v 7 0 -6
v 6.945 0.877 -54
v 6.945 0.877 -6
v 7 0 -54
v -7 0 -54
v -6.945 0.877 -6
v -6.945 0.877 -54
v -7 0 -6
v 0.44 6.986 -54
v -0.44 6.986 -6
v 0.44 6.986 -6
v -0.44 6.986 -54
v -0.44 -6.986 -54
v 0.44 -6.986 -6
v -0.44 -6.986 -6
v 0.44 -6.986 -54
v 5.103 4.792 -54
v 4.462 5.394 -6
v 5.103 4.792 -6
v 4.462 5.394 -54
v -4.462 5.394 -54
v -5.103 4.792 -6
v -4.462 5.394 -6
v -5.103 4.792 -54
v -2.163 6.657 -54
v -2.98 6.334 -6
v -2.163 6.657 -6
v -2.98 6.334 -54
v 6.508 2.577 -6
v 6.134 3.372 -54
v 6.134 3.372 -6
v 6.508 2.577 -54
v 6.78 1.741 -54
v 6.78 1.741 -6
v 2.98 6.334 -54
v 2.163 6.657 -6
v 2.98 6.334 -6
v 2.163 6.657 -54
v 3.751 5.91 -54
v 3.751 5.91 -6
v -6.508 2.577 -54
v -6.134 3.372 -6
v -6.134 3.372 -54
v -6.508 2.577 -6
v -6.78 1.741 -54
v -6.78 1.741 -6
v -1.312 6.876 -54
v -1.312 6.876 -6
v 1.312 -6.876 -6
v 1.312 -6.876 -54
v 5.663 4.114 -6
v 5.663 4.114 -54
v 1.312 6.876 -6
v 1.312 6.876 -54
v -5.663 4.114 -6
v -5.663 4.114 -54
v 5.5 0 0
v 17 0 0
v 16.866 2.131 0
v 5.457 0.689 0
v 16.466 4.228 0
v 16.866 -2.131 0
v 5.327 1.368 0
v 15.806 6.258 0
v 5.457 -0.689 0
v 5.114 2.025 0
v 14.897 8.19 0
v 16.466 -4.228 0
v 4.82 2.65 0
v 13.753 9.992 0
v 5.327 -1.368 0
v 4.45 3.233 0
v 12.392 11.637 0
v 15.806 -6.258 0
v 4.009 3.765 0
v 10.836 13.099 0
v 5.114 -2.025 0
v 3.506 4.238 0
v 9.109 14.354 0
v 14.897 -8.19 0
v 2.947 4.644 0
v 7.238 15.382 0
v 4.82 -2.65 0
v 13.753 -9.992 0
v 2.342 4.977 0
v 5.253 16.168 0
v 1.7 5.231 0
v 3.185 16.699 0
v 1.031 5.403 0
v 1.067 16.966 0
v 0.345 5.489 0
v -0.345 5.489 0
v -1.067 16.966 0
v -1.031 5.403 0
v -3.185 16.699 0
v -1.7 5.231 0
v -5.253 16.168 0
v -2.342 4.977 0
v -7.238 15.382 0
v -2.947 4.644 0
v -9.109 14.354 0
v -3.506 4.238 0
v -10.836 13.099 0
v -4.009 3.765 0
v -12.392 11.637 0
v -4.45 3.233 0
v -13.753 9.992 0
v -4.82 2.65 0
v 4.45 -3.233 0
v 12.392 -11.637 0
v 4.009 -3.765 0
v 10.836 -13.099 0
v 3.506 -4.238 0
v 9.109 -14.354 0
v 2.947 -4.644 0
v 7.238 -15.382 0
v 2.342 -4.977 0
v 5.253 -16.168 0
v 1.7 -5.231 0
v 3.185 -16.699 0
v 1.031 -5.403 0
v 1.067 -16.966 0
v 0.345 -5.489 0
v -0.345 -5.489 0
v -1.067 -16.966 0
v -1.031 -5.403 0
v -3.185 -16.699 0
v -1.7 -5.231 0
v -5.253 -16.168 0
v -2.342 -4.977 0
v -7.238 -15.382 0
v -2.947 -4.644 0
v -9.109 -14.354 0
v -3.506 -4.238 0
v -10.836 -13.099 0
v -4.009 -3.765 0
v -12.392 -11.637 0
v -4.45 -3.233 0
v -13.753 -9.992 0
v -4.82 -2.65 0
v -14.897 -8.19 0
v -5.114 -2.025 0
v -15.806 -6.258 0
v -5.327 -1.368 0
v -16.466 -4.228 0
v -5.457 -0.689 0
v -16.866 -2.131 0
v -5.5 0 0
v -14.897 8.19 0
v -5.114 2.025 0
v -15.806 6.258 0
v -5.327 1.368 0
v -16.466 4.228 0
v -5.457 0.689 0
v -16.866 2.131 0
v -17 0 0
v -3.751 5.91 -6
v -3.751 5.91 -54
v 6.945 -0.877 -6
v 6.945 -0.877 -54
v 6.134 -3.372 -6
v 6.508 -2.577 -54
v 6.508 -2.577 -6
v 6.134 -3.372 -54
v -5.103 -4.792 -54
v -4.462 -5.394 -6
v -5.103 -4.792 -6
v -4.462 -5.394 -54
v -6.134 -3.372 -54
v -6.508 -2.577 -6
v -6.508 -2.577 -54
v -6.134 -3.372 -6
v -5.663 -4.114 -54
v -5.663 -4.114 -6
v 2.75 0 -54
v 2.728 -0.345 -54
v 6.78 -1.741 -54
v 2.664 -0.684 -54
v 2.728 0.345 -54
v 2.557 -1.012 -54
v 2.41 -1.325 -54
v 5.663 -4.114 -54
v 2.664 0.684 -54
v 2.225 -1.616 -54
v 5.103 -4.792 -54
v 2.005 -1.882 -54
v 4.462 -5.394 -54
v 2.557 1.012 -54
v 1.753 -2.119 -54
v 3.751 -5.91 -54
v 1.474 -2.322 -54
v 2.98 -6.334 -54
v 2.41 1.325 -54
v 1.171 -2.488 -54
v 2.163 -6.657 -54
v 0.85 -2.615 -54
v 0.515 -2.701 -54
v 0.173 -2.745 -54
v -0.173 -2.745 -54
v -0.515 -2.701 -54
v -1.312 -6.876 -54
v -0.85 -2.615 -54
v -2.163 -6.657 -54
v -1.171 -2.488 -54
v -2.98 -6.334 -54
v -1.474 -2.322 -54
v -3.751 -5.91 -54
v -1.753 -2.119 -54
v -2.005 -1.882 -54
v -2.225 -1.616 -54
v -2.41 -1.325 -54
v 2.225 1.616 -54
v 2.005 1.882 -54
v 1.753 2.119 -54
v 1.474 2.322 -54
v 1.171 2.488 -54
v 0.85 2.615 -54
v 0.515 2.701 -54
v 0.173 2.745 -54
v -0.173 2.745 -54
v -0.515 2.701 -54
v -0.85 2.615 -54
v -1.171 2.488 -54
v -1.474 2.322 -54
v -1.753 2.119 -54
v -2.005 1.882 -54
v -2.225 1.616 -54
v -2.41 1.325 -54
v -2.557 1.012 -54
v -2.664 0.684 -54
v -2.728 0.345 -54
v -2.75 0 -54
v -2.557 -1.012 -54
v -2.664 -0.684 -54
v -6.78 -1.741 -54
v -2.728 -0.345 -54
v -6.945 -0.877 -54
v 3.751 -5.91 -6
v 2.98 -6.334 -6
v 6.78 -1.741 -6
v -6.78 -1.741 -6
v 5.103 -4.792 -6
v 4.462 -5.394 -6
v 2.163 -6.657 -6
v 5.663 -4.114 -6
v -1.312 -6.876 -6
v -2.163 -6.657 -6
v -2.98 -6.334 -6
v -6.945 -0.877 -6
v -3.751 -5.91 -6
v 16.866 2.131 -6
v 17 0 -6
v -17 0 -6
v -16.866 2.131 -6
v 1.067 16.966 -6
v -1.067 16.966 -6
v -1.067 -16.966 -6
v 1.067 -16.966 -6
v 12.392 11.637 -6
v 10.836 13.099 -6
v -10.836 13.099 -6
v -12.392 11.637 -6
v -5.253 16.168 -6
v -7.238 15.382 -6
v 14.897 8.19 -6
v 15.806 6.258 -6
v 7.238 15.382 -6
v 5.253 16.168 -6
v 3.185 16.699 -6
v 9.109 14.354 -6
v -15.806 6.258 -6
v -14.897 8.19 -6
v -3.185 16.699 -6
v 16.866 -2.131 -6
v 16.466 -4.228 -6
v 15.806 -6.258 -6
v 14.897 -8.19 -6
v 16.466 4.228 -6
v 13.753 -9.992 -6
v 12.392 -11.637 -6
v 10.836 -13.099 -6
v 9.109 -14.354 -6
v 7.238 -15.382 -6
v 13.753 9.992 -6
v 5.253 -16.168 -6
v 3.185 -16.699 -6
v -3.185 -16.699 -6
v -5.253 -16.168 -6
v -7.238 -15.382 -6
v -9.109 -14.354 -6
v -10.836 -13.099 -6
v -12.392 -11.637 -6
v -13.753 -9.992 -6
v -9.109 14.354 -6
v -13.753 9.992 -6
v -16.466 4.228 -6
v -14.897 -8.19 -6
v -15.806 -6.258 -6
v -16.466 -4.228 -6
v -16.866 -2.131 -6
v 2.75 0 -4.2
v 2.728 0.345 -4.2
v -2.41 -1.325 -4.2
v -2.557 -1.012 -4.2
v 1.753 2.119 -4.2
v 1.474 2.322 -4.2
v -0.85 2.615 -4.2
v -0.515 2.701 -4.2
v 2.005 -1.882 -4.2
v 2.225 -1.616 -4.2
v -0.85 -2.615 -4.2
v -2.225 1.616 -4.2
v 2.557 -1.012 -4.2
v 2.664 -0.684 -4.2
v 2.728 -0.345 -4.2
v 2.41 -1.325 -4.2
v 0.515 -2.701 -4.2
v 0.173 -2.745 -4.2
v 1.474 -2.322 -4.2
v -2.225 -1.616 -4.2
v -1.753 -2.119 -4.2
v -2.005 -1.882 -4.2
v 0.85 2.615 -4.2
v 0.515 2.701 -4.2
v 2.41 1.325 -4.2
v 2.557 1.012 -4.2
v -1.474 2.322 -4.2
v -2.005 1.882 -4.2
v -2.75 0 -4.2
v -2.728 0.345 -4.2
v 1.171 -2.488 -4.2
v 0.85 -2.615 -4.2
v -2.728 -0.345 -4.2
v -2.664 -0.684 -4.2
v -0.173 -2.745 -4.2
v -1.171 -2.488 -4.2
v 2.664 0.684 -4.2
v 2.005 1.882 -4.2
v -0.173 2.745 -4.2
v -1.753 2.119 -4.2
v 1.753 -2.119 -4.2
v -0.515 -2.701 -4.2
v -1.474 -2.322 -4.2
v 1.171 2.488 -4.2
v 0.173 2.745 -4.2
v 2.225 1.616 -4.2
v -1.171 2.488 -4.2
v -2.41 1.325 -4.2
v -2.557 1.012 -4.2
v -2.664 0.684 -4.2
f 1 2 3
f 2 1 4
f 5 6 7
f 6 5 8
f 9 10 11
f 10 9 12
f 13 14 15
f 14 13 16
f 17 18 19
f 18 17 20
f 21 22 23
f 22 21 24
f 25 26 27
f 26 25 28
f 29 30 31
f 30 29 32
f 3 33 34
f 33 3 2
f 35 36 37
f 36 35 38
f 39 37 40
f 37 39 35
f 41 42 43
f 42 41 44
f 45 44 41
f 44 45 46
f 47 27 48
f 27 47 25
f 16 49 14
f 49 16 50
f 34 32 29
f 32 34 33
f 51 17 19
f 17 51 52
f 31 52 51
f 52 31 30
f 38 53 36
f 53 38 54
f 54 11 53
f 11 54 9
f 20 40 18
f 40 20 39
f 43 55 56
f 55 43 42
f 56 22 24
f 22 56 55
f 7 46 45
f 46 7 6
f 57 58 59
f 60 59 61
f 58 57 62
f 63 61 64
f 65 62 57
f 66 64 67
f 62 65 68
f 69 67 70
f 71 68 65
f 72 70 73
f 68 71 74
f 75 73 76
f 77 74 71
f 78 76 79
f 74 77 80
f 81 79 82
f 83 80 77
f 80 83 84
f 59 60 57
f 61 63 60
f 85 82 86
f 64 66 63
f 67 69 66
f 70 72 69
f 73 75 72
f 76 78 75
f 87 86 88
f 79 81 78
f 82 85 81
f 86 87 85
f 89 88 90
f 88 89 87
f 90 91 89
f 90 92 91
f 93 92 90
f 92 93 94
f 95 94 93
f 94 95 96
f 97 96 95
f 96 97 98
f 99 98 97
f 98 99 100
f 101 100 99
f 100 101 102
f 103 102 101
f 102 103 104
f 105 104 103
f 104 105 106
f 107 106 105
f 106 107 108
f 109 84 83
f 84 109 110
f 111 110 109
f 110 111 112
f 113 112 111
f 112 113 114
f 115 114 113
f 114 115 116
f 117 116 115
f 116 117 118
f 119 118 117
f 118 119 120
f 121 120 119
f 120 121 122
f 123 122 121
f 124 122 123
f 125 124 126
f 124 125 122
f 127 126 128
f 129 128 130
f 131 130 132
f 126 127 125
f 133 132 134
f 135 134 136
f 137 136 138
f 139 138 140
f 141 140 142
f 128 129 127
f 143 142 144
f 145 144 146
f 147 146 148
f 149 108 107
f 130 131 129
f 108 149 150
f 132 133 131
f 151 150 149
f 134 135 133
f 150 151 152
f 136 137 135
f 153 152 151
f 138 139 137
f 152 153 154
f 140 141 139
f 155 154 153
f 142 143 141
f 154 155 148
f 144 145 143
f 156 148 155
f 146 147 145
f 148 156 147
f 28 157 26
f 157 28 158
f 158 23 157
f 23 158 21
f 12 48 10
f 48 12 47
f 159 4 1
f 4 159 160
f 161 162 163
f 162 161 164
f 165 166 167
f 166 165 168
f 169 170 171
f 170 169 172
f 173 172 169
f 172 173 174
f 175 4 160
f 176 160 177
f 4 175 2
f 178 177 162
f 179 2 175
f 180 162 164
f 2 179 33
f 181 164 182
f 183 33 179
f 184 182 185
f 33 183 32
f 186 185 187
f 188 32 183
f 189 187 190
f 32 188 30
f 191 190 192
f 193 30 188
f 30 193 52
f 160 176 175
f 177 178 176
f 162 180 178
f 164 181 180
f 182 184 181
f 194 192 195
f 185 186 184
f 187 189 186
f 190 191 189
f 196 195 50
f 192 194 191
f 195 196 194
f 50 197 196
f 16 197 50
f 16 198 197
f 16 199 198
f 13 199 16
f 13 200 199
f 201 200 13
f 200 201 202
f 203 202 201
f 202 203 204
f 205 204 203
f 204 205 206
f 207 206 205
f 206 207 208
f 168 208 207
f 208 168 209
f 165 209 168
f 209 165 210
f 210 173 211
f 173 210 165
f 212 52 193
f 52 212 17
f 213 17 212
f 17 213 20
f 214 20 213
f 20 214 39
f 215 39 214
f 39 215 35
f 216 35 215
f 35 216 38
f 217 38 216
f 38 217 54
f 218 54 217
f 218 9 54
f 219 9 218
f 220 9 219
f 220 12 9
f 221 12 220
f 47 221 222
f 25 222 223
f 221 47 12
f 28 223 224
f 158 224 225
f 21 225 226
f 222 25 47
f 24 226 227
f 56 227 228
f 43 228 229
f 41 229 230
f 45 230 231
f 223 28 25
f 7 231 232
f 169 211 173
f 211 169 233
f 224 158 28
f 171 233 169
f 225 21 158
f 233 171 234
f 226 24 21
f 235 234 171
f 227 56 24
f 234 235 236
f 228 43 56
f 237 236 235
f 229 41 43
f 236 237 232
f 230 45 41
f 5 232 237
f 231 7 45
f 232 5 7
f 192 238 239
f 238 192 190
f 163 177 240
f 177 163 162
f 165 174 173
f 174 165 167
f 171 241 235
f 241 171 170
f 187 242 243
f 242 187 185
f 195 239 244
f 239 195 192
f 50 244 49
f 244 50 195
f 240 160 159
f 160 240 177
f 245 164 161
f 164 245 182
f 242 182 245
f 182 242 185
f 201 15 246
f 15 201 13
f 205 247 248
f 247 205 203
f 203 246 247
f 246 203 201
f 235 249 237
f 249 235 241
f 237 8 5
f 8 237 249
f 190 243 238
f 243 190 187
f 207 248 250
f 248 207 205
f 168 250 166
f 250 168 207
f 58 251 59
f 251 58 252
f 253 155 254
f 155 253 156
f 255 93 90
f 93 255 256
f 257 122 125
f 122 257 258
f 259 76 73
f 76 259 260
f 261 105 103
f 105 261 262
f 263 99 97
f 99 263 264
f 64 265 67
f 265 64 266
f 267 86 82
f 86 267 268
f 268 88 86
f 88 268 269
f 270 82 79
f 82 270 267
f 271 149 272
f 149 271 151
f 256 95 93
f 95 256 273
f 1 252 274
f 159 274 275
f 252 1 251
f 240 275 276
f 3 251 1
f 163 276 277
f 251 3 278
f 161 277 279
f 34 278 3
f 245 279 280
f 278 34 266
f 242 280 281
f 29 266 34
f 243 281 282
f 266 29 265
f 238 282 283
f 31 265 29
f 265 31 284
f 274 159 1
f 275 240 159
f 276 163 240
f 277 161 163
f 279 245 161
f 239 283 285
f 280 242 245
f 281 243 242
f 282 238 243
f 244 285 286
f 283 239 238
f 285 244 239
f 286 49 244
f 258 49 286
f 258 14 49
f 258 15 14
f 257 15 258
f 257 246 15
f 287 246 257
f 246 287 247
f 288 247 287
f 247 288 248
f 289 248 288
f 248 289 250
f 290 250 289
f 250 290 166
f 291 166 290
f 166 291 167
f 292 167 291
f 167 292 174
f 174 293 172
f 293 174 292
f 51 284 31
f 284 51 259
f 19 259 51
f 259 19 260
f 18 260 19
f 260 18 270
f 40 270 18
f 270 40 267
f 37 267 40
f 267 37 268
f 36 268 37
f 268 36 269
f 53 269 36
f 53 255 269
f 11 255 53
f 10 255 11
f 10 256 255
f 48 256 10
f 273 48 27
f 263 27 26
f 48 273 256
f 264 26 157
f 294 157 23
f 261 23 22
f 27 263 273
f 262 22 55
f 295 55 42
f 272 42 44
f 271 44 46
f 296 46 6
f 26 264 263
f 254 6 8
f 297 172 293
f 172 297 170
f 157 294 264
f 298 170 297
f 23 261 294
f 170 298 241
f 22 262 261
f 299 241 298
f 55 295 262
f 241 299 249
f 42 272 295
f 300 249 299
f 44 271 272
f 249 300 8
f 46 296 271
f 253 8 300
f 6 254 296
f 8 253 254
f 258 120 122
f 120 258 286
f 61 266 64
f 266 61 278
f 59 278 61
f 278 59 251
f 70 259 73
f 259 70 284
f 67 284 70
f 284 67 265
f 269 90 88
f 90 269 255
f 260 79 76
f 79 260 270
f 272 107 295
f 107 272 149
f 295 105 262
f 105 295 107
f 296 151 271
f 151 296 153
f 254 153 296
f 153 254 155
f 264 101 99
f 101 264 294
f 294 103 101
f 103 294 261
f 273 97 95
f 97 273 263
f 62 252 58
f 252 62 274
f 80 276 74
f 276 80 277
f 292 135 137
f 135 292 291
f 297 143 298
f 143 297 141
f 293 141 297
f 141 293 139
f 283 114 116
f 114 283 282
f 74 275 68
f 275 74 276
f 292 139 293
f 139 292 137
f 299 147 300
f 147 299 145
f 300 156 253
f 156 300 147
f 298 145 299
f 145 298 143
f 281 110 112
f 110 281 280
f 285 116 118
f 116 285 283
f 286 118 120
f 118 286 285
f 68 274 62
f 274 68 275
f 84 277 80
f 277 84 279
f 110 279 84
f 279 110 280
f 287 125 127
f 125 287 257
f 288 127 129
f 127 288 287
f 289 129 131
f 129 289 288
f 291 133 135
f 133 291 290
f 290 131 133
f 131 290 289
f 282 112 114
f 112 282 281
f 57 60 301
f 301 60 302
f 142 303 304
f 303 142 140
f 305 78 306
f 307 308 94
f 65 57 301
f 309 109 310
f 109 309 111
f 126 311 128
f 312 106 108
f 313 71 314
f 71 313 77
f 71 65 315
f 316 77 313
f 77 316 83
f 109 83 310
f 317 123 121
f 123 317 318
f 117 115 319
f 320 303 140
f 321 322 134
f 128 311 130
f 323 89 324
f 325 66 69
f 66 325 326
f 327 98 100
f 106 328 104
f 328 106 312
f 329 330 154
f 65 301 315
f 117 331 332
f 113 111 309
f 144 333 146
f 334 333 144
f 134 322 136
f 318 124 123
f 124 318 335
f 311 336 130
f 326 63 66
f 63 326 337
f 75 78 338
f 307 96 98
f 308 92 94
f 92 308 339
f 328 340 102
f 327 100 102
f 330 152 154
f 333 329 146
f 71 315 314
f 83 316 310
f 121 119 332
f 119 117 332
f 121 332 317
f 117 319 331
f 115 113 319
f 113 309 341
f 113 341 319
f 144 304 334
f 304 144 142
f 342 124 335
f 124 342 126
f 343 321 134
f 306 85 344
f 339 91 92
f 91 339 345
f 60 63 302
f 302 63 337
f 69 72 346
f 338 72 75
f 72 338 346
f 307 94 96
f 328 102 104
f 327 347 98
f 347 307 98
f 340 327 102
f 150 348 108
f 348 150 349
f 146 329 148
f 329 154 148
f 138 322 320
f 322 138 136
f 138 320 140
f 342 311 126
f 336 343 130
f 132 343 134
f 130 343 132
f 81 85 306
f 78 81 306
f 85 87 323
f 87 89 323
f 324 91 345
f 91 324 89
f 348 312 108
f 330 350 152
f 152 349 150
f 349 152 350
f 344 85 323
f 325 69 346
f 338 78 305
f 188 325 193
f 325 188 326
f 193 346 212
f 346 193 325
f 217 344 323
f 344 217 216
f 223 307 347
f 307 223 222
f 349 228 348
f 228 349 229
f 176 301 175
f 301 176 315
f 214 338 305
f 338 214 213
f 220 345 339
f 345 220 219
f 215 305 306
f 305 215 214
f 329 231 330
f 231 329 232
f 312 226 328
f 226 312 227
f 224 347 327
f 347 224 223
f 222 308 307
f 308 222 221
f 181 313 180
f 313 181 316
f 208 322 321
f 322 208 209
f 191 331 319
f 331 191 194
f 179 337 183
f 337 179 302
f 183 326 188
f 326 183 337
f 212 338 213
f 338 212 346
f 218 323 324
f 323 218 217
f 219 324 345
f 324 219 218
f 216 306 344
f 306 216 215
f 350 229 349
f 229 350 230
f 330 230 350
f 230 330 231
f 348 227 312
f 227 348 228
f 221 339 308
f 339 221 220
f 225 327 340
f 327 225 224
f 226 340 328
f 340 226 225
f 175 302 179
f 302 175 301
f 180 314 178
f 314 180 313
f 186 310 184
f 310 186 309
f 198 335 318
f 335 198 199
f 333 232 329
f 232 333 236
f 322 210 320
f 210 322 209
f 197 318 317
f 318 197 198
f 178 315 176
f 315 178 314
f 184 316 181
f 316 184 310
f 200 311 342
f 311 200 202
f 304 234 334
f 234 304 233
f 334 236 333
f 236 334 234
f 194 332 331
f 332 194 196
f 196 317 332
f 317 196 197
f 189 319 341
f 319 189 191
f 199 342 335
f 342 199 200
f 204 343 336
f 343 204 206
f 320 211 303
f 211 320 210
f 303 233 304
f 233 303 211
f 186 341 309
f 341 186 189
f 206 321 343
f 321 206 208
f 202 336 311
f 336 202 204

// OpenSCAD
$fn = 50;


difference() {
	union() {
		translate(v = [0, 0, -54.0000000000]) {
			cylinder(h = 54, r = 7.0000000000);
		}
		translate(v = [0, 0, -6.0000000000]) {
			cylinder(h = 6, r = 17.0000000000);
		}
	}
	union() {
		translate(v = [0, 0, 0]) {
			rotate(a = [0, 0, 0]) {
				difference() {
					union() {
						#translate(v = [0, 0, -54.0000000000]) {
							cylinder(h = 54, r = 2.2500000000);
						}
						#translate(v = [0, 0, -4.2000000000]) {
							cylinder(h = 4.2000000000, r1 = 2.7500000000, r2 = 5.5000000000);
						}
						#translate(v = [0, 0, -54.0000000000]) {
							cylinder(h = 54, r = 2.7500000000);
						}
						#translate(v = [0, 0, -54.0000000000]) {
							cylinder(h = 54, r = 2.2500000000);
						}
					}
					union();
				}
			}
		}
	}
}
